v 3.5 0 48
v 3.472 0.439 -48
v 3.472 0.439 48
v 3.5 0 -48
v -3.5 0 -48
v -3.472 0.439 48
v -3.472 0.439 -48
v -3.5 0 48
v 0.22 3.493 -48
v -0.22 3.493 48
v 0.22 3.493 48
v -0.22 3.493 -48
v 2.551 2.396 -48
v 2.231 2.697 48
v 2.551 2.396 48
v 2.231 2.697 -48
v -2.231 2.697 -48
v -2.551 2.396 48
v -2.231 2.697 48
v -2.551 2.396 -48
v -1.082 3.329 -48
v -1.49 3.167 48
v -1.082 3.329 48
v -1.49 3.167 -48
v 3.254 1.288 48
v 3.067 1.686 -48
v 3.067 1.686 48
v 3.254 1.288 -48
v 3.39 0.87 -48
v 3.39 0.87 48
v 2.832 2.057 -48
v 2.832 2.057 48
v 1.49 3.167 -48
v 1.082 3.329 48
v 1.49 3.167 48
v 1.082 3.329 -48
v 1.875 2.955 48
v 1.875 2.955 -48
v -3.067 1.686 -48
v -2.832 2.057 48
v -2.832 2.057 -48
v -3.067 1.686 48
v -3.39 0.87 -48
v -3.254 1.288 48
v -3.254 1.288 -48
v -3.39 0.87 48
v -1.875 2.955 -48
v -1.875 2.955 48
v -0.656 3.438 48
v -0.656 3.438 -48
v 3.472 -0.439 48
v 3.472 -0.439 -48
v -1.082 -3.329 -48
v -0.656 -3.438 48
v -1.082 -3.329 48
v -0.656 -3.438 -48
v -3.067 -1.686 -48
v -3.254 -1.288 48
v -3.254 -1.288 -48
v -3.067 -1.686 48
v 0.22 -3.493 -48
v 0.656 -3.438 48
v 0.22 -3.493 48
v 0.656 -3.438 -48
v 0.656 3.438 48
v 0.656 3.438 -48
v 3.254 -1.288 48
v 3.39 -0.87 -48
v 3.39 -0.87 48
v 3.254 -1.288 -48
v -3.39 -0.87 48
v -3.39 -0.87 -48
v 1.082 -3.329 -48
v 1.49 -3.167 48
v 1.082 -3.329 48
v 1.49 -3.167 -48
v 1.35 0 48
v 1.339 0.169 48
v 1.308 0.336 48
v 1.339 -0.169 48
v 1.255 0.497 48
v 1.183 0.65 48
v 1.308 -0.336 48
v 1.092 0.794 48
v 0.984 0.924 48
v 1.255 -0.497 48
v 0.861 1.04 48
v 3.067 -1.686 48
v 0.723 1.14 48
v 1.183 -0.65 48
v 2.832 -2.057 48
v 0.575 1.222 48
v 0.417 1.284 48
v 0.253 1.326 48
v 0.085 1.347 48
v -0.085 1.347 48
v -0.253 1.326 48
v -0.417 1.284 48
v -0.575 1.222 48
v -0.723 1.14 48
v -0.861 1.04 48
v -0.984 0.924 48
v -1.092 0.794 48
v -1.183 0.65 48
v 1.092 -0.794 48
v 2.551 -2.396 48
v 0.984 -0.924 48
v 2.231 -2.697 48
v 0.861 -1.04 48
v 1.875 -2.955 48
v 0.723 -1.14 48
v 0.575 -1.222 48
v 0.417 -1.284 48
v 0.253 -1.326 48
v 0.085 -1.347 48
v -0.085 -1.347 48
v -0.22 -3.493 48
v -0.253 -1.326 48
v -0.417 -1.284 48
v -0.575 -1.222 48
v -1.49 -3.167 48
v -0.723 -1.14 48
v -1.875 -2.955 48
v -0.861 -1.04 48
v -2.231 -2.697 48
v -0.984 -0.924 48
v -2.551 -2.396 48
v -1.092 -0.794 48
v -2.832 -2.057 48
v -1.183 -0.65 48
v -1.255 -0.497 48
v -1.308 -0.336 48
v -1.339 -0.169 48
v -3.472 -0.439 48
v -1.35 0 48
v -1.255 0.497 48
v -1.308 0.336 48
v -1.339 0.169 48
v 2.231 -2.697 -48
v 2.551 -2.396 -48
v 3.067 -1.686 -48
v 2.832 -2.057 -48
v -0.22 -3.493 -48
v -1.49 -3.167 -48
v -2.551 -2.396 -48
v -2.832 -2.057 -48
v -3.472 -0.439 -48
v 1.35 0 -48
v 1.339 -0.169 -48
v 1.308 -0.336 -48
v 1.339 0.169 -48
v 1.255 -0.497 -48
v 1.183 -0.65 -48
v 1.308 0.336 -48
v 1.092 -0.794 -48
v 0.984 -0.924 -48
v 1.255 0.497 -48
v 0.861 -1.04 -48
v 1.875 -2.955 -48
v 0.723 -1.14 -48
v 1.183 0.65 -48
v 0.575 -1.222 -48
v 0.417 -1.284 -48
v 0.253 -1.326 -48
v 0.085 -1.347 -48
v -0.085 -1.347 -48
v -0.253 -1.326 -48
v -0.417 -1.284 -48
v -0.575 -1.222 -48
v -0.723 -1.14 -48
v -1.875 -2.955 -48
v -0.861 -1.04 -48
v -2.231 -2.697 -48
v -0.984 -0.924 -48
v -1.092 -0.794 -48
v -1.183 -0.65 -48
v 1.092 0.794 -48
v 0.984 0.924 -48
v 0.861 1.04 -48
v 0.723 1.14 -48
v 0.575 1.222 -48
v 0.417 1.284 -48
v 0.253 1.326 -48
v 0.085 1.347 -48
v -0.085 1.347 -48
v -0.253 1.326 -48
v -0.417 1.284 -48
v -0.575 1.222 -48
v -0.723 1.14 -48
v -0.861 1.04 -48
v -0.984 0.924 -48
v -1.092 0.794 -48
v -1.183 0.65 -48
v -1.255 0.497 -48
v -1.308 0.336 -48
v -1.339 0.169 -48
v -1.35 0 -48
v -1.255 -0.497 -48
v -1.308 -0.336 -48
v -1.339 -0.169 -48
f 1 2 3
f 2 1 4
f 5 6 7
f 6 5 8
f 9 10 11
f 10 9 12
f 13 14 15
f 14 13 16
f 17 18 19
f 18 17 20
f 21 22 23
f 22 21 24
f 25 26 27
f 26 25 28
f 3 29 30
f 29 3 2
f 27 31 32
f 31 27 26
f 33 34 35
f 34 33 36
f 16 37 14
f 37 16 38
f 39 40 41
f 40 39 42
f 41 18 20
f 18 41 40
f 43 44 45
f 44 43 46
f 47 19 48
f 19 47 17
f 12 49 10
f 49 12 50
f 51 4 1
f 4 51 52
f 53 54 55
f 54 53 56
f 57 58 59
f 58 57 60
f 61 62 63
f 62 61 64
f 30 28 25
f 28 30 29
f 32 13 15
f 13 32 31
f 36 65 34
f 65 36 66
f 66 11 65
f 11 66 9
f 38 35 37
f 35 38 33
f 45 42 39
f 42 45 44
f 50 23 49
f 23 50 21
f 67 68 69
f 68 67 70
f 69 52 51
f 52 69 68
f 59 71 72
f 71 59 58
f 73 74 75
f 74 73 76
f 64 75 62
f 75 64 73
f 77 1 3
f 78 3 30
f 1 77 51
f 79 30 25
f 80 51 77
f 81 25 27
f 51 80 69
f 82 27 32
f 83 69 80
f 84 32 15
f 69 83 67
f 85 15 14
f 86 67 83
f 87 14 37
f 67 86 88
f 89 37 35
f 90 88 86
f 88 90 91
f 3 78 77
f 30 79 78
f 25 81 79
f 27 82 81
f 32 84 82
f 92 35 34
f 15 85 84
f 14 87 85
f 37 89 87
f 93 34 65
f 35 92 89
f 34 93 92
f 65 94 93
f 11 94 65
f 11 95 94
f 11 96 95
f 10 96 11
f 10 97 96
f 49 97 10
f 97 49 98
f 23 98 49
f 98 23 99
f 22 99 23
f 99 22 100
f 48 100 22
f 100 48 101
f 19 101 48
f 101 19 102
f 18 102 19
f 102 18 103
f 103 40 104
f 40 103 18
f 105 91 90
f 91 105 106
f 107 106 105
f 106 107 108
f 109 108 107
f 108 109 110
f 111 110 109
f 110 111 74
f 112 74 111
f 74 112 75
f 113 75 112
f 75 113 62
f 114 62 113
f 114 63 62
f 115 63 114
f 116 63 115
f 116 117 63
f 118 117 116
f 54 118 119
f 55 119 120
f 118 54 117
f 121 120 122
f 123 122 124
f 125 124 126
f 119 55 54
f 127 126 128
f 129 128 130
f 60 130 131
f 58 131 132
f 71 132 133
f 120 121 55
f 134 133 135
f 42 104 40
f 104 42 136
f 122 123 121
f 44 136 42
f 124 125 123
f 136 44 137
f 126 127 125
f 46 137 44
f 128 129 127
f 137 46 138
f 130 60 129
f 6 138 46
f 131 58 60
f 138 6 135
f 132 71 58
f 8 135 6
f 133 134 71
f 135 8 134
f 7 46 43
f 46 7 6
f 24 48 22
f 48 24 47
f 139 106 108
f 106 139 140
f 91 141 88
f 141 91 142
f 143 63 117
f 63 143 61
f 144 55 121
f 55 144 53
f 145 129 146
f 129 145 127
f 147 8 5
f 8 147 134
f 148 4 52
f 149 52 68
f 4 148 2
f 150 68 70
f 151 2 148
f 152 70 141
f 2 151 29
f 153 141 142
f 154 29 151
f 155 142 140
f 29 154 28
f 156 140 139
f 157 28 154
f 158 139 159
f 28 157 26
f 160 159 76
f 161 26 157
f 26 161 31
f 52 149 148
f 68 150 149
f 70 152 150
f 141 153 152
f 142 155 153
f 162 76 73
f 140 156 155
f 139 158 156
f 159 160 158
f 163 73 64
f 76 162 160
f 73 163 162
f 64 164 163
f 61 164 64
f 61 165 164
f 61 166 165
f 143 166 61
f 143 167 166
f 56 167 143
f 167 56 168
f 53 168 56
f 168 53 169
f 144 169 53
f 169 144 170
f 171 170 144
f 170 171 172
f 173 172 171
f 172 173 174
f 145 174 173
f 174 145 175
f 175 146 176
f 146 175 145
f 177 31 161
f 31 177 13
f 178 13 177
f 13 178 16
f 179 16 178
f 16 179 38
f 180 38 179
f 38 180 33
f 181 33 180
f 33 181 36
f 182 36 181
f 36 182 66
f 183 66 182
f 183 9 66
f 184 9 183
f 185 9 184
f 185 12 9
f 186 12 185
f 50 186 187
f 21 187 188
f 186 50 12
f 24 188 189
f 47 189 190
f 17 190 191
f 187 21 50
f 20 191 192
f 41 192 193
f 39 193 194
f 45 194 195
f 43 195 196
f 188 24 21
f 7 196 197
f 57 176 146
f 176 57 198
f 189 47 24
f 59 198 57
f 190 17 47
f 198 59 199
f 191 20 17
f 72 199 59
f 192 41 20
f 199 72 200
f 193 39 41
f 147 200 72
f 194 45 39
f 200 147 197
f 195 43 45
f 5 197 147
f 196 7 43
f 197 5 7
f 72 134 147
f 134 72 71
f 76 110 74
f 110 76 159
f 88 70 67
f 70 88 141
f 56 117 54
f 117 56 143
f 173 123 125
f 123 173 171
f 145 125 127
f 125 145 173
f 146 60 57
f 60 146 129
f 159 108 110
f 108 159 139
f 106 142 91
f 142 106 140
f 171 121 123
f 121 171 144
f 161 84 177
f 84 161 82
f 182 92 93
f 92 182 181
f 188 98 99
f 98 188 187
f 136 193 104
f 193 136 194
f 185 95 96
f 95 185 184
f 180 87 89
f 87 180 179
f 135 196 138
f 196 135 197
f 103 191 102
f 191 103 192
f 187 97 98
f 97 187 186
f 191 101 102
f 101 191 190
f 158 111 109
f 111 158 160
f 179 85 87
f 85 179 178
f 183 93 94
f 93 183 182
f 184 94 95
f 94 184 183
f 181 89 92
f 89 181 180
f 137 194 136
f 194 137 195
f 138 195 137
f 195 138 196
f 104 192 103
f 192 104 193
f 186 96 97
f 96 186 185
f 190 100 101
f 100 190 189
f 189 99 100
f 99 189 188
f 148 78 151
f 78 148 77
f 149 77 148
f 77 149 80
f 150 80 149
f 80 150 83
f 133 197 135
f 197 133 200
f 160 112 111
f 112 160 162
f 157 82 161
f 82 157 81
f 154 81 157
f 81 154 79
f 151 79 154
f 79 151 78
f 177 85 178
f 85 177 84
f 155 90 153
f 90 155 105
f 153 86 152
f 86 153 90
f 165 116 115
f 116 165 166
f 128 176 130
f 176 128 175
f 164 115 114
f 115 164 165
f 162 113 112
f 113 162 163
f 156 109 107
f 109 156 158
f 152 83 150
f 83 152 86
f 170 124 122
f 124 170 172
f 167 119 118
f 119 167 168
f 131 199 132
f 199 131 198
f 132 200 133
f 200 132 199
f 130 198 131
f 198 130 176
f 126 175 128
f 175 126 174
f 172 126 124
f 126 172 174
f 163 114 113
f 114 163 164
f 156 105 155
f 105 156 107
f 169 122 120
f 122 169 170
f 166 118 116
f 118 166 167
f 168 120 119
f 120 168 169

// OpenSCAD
$fn = 50;


difference() {
	union() {
		translate(v = [0, 0, -48.0000000000]) {
			cylinder(h = 96, r = 3.5000000000);
		}
	}
	union() {
		translate(v = [0, 0, -100.0000000000]) {
			cylinder(h = 200, r = 1.3500000000);
		}
	}
}
